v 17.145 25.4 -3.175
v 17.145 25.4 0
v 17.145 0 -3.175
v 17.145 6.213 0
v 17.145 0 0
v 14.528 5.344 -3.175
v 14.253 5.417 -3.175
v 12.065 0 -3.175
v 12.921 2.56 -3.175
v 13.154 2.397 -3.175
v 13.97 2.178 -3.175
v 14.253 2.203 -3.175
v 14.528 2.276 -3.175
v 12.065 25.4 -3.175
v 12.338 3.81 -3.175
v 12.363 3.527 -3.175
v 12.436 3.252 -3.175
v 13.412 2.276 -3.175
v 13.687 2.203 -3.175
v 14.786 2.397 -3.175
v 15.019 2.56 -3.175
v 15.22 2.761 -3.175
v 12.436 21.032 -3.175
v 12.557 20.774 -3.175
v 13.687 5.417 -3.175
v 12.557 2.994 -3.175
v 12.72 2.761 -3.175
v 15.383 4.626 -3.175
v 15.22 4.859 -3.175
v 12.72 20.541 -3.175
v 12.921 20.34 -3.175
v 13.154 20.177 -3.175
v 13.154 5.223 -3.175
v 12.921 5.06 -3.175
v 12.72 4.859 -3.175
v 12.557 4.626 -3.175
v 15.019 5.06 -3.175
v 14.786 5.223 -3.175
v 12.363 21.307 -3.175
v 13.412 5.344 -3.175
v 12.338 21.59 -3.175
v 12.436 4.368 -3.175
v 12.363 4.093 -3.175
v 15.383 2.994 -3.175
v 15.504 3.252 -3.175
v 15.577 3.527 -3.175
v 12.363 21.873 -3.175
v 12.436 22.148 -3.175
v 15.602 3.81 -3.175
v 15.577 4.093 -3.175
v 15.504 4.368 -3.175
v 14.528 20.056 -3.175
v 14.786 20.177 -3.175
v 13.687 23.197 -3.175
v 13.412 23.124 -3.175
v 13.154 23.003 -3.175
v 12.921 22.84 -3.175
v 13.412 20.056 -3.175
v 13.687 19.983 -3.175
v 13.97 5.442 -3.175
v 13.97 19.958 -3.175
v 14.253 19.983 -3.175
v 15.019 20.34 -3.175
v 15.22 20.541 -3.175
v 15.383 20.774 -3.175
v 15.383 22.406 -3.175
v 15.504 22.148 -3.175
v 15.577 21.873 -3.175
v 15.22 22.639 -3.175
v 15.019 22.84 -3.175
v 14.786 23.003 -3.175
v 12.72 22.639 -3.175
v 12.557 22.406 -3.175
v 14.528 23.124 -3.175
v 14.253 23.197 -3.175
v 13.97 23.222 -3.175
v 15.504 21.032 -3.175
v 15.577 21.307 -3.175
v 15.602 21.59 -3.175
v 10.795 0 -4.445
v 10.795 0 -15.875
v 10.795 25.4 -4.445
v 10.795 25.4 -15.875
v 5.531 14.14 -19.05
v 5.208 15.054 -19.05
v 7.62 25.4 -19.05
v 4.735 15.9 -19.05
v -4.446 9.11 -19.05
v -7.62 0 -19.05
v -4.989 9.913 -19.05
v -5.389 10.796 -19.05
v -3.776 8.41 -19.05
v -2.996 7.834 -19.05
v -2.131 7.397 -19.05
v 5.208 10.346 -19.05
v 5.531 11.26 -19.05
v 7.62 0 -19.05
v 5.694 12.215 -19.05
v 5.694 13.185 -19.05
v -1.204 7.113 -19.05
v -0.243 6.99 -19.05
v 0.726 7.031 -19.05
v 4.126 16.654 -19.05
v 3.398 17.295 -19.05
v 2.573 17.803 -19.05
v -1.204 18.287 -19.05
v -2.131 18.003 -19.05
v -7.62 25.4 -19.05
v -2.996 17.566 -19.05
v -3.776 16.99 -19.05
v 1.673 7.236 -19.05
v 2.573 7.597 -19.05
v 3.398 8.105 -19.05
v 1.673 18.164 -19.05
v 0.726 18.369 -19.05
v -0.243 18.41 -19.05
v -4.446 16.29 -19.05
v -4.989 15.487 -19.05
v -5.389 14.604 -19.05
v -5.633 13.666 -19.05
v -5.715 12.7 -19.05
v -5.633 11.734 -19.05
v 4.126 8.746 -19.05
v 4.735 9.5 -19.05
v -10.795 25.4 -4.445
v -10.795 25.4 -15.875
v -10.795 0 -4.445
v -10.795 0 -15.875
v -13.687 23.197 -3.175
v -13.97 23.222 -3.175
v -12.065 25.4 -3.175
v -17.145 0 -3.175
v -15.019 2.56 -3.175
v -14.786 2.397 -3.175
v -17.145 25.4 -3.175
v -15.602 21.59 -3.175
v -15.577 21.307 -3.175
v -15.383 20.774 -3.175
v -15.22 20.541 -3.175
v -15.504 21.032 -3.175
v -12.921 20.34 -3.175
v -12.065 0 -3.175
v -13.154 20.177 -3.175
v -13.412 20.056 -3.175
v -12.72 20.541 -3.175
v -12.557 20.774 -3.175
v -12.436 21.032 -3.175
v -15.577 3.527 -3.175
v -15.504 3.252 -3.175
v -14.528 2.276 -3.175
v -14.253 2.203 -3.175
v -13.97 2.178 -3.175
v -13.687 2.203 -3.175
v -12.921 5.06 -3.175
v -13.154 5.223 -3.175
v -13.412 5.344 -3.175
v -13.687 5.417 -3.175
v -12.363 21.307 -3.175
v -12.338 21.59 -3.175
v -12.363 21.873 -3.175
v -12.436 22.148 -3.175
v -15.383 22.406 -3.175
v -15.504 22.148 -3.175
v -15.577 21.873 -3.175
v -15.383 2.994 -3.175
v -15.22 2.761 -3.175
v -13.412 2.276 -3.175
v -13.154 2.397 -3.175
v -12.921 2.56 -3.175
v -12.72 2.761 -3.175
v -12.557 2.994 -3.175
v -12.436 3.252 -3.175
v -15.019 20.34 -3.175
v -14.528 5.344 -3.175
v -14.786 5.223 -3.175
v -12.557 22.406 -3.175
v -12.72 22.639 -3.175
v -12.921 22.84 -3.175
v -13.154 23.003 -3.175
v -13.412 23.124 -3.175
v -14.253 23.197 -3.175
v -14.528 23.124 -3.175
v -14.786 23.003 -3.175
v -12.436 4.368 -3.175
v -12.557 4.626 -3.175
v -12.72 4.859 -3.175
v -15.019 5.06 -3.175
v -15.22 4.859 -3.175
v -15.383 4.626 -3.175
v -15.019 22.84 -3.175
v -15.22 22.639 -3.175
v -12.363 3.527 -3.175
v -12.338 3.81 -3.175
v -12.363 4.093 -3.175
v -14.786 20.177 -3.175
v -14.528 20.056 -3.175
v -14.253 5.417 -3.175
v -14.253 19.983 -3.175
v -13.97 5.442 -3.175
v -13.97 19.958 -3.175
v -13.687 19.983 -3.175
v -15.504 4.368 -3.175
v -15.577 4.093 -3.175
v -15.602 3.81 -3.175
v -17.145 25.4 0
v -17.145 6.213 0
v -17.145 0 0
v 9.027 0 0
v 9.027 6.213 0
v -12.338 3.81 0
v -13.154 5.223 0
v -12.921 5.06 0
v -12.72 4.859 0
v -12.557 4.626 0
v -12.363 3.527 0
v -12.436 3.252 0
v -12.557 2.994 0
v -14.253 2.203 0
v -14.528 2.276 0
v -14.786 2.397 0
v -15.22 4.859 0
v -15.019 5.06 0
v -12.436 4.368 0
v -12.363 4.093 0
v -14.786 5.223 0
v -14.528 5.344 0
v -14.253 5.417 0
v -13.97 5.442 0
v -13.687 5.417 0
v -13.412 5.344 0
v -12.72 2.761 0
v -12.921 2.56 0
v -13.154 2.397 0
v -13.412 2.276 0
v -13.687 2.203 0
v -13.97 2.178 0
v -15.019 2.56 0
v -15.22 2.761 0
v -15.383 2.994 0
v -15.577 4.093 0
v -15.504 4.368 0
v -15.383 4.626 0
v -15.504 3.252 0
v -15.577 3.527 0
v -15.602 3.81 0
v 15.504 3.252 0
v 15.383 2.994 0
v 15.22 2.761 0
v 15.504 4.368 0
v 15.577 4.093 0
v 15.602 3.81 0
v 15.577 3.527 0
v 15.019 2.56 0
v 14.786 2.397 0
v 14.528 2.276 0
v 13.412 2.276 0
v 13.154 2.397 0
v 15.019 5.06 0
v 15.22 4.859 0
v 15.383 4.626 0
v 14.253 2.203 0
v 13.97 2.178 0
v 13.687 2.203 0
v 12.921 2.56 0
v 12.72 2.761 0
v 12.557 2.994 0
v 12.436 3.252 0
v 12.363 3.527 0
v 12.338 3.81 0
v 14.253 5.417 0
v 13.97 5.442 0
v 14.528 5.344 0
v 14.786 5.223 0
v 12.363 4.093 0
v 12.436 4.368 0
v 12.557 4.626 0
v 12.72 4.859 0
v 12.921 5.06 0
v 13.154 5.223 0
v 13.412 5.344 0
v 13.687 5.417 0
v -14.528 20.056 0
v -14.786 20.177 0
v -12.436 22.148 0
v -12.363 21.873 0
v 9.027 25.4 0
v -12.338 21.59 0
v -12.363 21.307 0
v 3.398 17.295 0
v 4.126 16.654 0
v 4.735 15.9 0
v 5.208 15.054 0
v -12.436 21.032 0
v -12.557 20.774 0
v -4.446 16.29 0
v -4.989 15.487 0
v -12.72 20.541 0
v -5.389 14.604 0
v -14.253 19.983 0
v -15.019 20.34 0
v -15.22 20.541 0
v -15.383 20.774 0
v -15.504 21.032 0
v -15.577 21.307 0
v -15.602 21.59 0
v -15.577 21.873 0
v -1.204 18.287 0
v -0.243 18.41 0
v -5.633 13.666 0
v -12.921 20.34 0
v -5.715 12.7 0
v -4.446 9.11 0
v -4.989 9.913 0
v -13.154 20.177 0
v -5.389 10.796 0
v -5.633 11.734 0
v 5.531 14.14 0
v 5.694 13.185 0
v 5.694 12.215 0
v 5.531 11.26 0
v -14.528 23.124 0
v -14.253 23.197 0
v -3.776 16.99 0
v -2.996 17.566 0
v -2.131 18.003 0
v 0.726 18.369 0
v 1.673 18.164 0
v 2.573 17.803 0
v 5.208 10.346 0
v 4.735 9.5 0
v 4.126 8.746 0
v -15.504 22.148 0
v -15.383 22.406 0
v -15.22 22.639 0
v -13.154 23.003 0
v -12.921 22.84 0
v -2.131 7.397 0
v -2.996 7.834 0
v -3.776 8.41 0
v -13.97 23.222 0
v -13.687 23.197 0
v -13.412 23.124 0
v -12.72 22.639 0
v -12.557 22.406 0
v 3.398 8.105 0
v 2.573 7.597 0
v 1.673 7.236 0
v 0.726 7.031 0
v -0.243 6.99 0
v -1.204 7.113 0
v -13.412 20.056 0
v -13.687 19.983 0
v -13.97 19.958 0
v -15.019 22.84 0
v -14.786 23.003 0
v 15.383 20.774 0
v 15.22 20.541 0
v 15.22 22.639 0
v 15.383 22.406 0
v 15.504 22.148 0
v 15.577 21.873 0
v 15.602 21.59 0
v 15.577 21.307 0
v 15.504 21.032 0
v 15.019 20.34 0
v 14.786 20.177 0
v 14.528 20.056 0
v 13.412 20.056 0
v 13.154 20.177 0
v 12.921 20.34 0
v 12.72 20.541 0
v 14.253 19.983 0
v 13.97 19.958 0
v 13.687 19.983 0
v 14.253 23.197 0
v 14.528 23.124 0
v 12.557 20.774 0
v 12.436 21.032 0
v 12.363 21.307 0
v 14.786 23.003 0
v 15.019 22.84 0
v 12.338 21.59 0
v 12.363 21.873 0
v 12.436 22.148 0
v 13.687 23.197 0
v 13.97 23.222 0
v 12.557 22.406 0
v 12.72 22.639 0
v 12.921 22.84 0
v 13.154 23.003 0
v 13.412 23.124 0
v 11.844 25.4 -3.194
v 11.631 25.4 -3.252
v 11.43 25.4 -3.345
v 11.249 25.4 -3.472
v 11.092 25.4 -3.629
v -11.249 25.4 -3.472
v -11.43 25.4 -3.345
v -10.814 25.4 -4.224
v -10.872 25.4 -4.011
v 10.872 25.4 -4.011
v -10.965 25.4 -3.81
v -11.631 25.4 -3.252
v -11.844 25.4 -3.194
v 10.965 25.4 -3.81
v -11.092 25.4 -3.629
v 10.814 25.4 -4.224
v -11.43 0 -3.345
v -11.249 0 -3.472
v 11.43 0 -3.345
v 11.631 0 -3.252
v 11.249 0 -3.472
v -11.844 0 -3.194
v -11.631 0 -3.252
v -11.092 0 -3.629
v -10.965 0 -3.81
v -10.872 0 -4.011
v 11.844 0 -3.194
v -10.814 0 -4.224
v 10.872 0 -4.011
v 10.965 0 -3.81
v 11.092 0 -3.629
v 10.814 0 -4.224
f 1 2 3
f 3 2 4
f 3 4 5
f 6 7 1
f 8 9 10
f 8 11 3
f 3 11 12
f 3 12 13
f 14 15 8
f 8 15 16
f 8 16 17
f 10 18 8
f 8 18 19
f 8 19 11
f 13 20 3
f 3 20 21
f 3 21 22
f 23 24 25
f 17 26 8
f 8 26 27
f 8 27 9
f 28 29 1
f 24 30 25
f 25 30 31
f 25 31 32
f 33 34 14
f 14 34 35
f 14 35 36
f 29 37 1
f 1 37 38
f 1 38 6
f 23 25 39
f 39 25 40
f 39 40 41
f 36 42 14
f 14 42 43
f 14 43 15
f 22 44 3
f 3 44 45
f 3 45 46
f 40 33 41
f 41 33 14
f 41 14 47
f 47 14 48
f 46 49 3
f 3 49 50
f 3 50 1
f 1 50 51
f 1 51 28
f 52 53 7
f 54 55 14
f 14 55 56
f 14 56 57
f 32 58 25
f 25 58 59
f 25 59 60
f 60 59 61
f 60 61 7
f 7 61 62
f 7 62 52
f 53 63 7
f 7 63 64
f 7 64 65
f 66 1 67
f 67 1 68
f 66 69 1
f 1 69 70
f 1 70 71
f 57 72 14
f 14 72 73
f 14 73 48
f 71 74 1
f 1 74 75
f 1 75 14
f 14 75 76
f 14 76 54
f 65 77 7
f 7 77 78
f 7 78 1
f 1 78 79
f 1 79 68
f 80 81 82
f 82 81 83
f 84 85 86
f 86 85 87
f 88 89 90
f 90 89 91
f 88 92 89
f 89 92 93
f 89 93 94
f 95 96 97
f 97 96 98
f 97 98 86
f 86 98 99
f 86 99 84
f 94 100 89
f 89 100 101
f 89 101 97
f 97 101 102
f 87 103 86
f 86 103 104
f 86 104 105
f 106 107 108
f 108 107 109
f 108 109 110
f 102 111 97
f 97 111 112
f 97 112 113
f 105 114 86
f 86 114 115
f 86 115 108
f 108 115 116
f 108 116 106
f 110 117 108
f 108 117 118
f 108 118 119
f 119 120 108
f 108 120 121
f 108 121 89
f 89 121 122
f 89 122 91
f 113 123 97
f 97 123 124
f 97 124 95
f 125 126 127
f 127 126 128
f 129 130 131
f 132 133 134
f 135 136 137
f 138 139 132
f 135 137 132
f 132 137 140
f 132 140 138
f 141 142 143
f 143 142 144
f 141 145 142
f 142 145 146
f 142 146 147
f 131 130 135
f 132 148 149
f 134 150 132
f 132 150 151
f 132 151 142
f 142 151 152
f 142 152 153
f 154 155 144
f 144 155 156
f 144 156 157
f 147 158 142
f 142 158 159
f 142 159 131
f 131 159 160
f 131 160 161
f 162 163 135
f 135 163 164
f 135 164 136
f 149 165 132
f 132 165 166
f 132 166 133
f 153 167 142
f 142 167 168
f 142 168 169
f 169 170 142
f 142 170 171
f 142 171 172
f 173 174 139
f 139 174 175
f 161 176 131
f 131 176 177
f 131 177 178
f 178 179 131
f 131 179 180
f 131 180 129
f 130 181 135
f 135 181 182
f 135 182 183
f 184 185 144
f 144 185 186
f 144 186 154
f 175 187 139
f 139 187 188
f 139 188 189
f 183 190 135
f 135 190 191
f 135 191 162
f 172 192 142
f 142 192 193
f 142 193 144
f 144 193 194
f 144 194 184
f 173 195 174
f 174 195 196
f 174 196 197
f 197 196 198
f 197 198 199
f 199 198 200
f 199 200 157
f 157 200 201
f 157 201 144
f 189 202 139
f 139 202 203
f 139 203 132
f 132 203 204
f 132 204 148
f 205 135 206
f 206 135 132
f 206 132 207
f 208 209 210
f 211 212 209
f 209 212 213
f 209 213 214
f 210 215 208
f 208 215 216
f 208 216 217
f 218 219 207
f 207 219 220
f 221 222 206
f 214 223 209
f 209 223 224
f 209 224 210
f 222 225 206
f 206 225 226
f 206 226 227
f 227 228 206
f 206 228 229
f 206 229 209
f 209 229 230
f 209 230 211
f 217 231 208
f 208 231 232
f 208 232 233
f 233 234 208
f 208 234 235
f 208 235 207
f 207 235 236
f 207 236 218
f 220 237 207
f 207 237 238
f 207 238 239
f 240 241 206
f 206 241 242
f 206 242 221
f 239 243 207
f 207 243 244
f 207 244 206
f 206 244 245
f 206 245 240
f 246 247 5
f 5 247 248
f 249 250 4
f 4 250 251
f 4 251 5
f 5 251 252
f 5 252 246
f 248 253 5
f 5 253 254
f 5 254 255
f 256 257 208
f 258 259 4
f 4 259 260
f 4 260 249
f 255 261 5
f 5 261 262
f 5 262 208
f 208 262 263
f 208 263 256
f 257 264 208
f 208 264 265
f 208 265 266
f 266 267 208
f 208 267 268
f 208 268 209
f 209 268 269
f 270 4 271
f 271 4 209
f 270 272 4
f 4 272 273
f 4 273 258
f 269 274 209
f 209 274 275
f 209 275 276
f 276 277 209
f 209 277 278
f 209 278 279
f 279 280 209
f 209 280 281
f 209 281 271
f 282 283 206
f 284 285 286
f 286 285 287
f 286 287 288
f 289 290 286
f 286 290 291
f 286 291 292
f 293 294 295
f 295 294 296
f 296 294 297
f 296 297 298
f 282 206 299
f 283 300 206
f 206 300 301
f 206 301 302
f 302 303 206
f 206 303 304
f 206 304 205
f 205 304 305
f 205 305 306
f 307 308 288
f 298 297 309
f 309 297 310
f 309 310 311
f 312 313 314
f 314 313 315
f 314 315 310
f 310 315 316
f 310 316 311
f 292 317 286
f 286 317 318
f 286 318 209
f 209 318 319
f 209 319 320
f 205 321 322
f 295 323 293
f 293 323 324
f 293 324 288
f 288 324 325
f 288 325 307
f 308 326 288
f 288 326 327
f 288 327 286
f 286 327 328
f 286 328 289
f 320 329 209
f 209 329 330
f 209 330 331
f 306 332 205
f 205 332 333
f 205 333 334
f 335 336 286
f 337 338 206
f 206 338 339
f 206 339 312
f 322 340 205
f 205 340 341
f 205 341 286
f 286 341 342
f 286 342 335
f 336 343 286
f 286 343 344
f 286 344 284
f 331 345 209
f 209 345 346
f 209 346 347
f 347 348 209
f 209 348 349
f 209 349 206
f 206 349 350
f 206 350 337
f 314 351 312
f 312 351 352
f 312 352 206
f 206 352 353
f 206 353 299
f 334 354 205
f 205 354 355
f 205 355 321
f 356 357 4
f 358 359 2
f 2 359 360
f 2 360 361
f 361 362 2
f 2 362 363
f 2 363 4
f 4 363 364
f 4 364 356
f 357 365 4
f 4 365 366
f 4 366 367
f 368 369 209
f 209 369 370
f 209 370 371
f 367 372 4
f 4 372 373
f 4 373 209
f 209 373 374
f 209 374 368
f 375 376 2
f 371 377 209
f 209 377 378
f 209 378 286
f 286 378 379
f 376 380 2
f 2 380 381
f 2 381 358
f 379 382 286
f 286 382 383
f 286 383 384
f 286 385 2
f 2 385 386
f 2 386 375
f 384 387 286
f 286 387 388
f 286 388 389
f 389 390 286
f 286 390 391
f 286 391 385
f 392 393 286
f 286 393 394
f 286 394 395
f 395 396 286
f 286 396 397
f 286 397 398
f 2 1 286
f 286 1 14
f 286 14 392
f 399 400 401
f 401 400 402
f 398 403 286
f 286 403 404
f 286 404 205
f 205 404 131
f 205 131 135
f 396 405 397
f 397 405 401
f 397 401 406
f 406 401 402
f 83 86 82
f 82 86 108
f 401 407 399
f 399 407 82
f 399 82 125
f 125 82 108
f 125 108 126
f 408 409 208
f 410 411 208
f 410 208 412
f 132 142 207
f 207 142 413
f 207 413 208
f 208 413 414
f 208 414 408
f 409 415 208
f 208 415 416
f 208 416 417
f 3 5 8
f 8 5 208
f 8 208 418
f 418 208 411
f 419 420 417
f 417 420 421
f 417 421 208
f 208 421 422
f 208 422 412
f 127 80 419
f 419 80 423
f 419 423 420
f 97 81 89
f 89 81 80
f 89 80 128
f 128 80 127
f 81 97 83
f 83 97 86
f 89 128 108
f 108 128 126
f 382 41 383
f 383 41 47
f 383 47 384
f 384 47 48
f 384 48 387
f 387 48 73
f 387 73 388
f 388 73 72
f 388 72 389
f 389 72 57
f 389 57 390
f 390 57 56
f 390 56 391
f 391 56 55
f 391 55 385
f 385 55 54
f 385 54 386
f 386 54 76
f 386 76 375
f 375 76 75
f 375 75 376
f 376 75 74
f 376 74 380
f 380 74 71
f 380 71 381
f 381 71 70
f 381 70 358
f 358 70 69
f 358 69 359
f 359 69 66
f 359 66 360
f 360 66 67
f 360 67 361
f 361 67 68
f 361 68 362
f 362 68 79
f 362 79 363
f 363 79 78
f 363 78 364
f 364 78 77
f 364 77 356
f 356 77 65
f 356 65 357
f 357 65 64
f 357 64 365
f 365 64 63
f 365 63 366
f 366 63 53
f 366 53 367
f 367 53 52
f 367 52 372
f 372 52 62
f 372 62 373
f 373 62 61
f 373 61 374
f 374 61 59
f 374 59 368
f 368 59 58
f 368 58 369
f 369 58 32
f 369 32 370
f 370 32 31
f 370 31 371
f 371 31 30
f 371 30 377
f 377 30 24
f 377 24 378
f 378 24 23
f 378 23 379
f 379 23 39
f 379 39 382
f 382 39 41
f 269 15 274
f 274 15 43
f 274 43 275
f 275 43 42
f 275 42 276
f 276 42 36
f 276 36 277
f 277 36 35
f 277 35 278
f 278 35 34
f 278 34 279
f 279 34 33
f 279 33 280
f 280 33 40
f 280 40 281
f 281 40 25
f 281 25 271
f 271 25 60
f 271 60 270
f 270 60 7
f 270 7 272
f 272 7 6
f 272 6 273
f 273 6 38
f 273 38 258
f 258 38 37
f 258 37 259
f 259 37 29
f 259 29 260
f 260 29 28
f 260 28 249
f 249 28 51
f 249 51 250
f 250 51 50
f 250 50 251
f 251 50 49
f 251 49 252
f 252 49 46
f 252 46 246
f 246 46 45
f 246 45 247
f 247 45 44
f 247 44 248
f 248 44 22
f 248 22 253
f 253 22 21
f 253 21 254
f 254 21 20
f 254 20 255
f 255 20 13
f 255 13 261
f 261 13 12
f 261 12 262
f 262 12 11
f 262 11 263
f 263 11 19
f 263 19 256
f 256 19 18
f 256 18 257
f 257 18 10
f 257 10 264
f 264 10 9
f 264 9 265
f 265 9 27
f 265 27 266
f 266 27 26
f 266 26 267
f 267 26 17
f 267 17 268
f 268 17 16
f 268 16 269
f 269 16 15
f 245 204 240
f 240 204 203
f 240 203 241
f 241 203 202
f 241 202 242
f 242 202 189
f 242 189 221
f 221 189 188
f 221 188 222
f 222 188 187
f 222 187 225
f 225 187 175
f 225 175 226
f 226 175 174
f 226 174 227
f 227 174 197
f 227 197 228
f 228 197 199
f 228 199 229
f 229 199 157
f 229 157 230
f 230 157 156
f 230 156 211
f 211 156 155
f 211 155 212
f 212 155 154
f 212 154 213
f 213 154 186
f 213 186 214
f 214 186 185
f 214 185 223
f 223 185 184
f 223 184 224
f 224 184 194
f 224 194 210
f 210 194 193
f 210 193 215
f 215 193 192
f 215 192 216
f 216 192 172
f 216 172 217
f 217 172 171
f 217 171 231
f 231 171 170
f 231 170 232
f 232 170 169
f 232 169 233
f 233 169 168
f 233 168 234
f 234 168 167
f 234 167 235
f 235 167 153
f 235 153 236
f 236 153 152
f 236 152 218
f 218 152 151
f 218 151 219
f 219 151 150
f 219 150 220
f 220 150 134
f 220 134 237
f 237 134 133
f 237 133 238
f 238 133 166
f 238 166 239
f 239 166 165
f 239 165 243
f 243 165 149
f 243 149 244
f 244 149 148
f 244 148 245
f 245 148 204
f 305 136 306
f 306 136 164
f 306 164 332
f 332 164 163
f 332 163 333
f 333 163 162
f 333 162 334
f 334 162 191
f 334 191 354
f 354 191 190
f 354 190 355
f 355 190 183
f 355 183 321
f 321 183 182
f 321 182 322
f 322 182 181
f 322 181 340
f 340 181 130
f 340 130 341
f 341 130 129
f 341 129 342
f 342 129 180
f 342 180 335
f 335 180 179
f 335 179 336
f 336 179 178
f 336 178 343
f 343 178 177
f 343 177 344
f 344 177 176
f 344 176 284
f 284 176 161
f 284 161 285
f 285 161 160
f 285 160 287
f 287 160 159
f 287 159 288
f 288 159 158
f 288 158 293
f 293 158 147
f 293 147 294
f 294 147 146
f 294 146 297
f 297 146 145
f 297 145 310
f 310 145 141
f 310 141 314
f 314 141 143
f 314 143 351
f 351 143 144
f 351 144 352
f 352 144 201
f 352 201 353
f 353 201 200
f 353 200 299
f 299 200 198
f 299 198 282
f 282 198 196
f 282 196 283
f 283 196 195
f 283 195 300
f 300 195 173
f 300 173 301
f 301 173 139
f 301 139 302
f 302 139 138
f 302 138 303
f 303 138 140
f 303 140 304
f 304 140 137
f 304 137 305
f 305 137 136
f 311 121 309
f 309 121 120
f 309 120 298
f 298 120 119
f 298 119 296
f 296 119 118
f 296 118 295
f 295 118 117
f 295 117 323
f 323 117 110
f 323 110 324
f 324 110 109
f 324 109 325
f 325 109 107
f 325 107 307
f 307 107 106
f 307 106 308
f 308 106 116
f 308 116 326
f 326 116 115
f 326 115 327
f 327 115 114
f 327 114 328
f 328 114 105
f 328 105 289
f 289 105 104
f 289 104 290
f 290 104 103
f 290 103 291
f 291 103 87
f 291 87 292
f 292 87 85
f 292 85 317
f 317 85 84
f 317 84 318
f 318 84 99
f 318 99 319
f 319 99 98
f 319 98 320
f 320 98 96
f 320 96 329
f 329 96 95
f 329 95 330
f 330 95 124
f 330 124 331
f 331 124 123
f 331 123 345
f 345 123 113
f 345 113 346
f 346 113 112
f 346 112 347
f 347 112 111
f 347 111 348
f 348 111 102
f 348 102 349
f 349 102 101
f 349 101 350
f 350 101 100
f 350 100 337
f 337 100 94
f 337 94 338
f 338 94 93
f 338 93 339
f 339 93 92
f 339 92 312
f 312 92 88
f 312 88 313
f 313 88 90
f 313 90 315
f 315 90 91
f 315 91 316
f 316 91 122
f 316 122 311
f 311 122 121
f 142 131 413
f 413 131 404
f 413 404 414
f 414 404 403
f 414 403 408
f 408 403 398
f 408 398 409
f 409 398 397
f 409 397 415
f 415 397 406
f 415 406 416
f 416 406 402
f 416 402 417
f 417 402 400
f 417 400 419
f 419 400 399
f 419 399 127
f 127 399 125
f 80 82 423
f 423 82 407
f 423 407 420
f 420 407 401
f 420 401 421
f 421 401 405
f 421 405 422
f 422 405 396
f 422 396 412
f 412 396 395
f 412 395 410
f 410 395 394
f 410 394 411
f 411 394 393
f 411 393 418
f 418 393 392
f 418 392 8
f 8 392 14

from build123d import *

# Parameters (mm, degrees)
BOSS_EXTRUDE4_DEPTH = 25.4
CHAMFER1_SIZE       = 3.175
SKETCH10_R          = 1.63195
CUT_EXTRUDE3_DEPTH  = 3.175
SKETCH11_R          = 5.715
CUT_EXTRUDE4_DEPTH  = 20.05
FILLET1_R           = 1.27


with BuildPart() as part:
    # Sketch4 → Boss-Extrude4 (new body)
    with BuildSketch(Plane(origin=(0, 0, 0), x_dir=(1, 0, 0), z_dir=(0, 1, 0))):
        Polygon((-10.795, 3.175), (-17.145, 3.175), (-17.145, 0), (-12.7, 0), (12.7, 0), (17.145, 0), (17.145, 3.175), (10.795, 3.175), (10.795, 19.05), (-10.795, 19.05), align=None)
    extrude(amount=BOSS_EXTRUDE4_DEPTH)

    # Chamfer1
    chamfer1_edges = [part.edges().sort_by_distance(p)[0] for p in [
        (-10.795, 12.7, -19.05),
        (10.795, 12.7, -19.05),
    ]]
    chamfer(chamfer1_edges, length=CHAMFER1_SIZE)

    # Sketch10 → Cut-Extrude3 (cut)
    with BuildSketch(Plane(origin=(0, 0, -3.175), x_dir=(-1, 0, 0), z_dir=(0, 0, -1))):
        with Locations((-13.97, 21.59)):
            Circle(SKETCH10_R)
        with Locations((-13.97, 3.81)):
            Circle(SKETCH10_R)
        with Locations((13.97, 3.81)):
            Circle(SKETCH10_R)
        with Locations((13.97, 21.59)):
            Circle(SKETCH10_R)
    extrude(amount=-CUT_EXTRUDE3_DEPTH, mode=Mode.SUBTRACT)

    # Sketch11 → Cut-Extrude4 (cut, through all)
    with BuildSketch(Plane(origin=(0, 0, -19.05), x_dir=(-1, 0, 0), z_dir=(0, 0, -1))):
        with Locations((0, 12.7)):
            Circle(SKETCH11_R)
    extrude(amount=-CUT_EXTRUDE4_DEPTH, mode=Mode.SUBTRACT)

    # Fillet1
    fillet1_edges = [part.edges().sort_by_distance(p)[0] for p in [
        (-10.795, 12.7, -3.175),
        (10.795, 12.7, -3.175),
    ]]
    fillet(fillet1_edges, radius=FILLET1_R)


solid = part.part
